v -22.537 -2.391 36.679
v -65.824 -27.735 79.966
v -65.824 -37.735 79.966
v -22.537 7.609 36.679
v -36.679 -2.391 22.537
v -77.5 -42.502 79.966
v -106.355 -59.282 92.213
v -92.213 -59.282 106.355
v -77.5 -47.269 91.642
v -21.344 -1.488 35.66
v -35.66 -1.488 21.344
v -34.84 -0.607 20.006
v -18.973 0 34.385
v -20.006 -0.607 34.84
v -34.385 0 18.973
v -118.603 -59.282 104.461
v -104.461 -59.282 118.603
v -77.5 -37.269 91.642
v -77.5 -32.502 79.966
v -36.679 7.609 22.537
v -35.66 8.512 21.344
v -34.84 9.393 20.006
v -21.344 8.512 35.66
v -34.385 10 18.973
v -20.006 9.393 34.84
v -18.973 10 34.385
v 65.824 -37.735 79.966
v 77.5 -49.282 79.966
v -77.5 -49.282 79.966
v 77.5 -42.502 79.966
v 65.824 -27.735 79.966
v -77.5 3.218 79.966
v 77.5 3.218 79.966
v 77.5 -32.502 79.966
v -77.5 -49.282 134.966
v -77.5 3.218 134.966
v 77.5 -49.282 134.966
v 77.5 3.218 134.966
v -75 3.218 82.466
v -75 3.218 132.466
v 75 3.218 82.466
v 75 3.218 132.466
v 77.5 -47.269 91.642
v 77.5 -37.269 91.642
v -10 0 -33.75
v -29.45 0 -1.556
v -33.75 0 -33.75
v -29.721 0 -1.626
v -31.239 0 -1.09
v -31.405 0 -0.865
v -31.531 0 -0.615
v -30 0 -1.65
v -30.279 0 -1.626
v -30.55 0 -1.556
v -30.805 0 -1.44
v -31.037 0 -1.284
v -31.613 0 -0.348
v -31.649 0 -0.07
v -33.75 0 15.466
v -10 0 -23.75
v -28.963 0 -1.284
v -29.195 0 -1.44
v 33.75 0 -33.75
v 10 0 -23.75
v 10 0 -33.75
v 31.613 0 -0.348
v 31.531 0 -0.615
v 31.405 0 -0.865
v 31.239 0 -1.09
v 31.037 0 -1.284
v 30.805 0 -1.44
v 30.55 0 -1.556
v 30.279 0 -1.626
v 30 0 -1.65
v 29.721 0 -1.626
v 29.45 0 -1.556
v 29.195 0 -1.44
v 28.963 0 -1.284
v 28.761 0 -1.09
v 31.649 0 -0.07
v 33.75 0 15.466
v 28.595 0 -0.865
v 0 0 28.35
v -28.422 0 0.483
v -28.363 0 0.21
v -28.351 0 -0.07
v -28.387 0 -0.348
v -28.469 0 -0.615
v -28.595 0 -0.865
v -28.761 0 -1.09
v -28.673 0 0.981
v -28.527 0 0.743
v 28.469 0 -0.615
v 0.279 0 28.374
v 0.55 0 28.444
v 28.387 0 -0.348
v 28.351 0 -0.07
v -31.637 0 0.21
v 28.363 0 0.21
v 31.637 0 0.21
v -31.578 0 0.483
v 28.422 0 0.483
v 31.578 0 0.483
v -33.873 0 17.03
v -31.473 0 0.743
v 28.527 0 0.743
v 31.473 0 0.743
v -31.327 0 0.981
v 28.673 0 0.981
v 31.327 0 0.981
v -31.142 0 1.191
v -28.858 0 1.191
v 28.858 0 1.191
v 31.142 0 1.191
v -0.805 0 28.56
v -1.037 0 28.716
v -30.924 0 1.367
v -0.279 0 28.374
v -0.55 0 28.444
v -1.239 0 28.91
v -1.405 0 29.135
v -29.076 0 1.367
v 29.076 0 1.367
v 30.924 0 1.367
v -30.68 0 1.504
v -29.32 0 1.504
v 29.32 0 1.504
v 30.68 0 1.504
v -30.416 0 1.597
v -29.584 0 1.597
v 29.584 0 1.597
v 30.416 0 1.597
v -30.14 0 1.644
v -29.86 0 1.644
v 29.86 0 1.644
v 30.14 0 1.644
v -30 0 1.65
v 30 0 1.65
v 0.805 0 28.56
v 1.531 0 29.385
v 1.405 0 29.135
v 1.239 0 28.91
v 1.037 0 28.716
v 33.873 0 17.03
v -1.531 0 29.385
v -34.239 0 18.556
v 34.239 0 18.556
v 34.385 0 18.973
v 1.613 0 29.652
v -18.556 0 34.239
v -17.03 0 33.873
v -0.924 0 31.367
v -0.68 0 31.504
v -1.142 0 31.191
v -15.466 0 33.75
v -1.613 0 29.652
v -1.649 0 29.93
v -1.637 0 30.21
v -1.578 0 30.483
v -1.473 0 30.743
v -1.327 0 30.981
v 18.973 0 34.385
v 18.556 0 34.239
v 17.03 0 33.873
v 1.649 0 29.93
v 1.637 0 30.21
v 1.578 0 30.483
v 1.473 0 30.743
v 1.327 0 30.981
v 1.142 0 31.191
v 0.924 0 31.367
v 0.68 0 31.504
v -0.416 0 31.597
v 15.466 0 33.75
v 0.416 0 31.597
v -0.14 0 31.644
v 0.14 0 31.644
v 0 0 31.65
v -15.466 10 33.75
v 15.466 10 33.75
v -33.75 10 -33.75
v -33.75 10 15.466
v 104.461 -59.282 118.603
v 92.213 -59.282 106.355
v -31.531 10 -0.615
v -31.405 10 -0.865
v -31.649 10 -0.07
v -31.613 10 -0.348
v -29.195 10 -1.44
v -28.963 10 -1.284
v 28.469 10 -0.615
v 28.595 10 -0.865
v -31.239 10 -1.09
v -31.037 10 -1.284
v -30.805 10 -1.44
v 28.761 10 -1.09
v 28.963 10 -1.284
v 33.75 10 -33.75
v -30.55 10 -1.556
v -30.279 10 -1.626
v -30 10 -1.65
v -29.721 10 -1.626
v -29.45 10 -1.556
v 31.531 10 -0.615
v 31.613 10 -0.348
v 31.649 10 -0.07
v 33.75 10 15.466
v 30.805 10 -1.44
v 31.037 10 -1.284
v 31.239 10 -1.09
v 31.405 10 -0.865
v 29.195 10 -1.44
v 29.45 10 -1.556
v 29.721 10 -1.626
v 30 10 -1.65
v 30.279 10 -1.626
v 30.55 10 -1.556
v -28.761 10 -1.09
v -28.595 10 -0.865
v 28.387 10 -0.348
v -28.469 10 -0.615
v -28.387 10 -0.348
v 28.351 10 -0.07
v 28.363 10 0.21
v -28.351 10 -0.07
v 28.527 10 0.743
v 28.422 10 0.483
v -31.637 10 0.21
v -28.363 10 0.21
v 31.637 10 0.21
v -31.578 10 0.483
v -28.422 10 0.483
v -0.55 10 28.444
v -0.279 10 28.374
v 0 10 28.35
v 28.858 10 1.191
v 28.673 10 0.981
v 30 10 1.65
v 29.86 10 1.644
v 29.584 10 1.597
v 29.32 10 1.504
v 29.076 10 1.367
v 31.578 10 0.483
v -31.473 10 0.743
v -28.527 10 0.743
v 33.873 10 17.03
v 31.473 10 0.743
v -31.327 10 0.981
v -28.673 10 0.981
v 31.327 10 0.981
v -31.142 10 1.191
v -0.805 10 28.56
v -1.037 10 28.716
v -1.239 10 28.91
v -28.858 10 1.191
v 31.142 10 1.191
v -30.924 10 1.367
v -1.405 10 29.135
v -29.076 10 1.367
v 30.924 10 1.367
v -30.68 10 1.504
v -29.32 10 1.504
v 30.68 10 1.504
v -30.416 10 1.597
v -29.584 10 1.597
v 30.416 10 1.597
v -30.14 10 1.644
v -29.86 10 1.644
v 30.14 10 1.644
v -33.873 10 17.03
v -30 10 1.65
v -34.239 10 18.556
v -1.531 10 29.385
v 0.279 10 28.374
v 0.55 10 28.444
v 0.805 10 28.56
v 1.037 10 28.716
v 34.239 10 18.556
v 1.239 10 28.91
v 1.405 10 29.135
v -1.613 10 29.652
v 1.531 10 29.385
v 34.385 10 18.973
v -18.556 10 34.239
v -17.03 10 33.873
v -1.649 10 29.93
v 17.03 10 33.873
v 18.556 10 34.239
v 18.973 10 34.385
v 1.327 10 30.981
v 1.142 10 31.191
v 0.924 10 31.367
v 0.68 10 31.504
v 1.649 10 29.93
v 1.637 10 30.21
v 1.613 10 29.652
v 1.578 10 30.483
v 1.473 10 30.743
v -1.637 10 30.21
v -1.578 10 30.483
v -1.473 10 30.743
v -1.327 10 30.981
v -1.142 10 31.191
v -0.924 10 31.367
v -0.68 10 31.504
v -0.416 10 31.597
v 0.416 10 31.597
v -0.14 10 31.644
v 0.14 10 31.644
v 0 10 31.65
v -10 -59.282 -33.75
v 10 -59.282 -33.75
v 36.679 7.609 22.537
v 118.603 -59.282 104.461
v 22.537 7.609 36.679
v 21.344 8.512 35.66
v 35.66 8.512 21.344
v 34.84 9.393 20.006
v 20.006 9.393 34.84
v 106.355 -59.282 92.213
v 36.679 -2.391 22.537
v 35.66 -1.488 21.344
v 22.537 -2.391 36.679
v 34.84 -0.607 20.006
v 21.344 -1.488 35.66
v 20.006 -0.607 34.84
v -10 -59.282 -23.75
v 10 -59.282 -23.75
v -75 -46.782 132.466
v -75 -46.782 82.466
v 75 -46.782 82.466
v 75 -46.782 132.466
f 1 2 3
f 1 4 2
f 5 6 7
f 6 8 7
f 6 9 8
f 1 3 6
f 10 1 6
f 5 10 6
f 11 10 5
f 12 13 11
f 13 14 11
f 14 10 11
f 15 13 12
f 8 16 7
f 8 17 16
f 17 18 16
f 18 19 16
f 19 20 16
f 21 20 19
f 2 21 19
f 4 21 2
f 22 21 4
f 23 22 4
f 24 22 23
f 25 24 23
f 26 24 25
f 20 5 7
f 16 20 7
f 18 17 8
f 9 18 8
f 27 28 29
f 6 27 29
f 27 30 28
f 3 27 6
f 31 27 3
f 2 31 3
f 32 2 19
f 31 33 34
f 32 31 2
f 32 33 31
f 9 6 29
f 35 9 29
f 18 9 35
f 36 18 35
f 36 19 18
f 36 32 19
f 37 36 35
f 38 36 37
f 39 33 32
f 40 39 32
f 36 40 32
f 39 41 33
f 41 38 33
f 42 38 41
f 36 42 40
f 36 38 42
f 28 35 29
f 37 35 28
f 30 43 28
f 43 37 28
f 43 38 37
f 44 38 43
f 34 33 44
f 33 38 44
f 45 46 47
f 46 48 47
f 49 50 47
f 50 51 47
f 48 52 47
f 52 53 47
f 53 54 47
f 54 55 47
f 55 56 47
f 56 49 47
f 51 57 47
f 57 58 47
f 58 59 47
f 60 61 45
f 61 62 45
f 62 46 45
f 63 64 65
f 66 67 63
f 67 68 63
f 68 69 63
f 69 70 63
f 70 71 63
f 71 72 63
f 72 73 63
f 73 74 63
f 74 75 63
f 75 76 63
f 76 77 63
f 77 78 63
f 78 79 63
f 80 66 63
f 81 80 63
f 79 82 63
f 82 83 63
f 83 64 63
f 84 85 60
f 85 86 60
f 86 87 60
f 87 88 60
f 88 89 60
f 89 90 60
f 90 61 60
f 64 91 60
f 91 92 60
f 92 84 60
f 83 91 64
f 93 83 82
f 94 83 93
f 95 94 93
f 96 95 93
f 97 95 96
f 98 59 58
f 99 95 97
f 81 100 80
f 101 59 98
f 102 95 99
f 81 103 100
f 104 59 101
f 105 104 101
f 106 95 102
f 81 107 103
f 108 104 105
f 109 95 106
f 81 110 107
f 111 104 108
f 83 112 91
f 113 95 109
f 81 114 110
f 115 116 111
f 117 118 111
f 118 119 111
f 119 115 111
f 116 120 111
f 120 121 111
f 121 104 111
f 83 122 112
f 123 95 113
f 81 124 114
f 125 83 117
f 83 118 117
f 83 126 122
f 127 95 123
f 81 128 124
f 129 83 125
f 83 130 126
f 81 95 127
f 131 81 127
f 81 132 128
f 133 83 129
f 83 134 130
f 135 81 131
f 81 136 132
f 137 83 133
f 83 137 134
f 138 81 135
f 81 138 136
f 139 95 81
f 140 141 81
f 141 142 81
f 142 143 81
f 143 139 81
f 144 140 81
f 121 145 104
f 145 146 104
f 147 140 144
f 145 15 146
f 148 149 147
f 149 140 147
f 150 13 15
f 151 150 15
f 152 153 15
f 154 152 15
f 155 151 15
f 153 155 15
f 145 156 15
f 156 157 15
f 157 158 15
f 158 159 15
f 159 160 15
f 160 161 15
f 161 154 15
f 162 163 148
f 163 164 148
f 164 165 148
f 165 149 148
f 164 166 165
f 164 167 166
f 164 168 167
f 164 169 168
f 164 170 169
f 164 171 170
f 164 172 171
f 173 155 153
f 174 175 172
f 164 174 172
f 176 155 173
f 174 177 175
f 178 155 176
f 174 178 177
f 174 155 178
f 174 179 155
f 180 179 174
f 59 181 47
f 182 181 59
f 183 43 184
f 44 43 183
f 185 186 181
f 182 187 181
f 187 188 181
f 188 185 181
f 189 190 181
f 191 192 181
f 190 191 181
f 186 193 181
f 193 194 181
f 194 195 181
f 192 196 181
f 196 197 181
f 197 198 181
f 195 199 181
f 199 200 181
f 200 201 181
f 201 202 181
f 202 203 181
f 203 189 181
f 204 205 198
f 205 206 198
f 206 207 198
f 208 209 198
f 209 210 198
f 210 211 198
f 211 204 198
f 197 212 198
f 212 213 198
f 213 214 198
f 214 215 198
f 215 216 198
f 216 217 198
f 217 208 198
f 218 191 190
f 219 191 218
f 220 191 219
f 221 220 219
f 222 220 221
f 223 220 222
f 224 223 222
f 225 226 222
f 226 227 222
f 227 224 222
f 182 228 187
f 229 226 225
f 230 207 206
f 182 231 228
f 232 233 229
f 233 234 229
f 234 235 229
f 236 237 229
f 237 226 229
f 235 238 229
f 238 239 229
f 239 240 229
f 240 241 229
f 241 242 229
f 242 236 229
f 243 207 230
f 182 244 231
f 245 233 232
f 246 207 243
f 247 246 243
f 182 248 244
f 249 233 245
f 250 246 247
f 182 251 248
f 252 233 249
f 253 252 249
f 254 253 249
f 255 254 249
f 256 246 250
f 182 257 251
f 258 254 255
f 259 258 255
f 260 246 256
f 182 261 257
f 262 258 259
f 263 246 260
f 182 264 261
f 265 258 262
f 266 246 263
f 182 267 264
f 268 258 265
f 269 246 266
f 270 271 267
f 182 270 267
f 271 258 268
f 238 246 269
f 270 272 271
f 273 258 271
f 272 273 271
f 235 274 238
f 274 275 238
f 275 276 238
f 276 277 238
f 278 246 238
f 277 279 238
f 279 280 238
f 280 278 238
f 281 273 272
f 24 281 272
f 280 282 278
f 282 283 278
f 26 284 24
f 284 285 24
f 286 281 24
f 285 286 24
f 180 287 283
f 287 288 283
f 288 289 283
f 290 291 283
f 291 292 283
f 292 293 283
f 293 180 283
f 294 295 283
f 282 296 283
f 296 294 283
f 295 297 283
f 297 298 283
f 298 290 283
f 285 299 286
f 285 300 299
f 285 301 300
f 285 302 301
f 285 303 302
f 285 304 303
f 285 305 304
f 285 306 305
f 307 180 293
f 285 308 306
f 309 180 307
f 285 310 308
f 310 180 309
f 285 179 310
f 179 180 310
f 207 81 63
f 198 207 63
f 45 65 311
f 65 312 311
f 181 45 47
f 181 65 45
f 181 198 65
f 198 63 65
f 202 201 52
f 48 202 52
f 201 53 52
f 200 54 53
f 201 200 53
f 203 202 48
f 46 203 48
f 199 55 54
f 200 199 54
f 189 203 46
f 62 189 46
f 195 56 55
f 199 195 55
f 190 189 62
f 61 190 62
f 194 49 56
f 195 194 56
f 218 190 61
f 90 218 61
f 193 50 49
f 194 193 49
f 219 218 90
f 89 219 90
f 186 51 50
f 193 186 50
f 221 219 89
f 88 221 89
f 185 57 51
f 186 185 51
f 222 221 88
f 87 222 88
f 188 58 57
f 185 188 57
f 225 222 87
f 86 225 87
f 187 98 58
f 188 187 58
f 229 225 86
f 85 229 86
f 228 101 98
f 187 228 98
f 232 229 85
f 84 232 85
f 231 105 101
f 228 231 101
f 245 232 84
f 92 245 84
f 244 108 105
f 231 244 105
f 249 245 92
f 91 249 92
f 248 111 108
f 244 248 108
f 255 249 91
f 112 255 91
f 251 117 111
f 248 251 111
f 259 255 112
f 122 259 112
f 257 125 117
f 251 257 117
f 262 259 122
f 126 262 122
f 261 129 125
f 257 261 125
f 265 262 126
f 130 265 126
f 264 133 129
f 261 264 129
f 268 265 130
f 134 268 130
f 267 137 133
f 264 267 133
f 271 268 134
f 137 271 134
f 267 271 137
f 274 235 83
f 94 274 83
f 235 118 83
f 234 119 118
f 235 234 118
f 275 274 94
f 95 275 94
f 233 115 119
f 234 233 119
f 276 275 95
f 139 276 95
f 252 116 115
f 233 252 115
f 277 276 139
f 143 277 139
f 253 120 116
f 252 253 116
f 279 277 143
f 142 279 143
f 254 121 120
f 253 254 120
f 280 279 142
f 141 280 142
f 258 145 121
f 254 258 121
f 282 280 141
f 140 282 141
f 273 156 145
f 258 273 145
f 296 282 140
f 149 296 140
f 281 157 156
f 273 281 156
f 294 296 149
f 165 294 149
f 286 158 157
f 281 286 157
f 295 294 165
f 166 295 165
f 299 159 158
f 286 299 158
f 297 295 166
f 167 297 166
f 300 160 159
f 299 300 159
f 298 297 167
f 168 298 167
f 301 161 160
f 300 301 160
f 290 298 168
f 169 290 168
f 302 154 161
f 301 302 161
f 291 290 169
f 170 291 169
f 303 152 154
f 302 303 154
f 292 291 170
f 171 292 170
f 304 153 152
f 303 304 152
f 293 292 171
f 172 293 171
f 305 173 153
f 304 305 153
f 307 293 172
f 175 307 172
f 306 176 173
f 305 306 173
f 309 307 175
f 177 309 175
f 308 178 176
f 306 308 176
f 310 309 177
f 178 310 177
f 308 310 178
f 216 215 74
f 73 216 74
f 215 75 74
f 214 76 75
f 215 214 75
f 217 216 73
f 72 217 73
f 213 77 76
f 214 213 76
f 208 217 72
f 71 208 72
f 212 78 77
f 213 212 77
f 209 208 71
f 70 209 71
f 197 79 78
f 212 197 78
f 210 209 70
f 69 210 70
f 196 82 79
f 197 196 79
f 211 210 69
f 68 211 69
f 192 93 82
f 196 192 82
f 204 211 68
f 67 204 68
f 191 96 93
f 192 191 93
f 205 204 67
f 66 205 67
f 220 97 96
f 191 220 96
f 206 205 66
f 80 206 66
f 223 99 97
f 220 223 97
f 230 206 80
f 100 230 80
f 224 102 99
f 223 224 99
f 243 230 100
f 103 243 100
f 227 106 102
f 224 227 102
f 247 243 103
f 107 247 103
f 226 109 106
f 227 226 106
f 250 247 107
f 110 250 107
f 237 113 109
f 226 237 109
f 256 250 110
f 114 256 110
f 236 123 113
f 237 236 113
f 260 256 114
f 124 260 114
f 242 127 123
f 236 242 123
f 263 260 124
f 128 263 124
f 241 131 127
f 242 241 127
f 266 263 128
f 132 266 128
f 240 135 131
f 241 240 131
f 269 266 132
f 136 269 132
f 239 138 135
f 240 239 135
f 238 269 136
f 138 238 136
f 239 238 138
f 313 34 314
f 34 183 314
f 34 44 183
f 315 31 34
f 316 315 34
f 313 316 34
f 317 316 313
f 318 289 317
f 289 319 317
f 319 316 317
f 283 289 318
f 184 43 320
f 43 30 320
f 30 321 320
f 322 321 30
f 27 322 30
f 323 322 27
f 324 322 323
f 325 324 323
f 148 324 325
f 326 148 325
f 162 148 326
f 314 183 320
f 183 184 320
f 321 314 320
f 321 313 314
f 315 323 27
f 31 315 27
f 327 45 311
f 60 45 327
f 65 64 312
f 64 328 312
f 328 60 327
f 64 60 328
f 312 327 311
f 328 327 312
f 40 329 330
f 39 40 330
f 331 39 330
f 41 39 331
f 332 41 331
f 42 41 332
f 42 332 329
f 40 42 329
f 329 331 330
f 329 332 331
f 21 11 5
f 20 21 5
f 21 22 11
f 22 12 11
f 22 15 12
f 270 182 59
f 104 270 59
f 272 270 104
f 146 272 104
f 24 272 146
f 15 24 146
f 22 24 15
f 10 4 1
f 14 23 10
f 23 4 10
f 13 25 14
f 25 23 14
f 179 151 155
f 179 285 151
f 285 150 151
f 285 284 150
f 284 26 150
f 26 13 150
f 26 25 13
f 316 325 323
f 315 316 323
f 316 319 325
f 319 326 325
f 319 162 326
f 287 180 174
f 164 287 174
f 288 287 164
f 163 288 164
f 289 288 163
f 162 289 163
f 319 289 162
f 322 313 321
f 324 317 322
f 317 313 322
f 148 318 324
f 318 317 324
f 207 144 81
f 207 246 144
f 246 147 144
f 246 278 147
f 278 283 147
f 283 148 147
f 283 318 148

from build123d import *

# Parameters (mm, degrees)
SKETCH2_W                = 67.5
SKETCH2_H                = 67.5
SKETCH2_R                = 1.65
BOSS_EXTRUDE3_DEPTH      = 10
BOSS_EXTRUDE6_DEPTH      = 10
CUT_EXTRUDE2_DEPTH       = 10
CUT_EXTRUDE3_DEPTH       = 10
SKETCH13_W               = 20
SKETCH13_H               = 10
BOSS_EXTRUDE8_DEPTH      = 59.282032303
BOSS_EXTRUDE9_DEPTH      = 77.5
BOSS_EXTRUDE9_DEPTH_BACK = 77.5
SKETCH14_W               = 55
SKETCH14_H               = 52.5
SKETCH15_W               = 150
SKETCH15_H               = 50
CUT_EXTRUDE4_DEPTH       = 50
FILLET1_R                = 10


with BuildPart() as part:
    # Sketch2 → Boss-Extrude3 (new body)
    with BuildSketch(Plane(origin=(0, 0, 0), x_dir=(1, 0, 0), z_dir=(0, 1, 0))):
        Rectangle(SKETCH2_W, SKETCH2_H)
        with Locations(Location((-30, 0, 0), (0, 0, 270))):
            Circle(SKETCH2_R, mode=Mode.SUBTRACT)
        with Locations(Location((30, 0, 0), (0, 0, 270))):
            Circle(SKETCH2_R, mode=Mode.SUBTRACT)
        with Locations(Location((0, -30, 0), (0, 0, 270))):
            Circle(SKETCH2_R, mode=Mode.SUBTRACT)
    extrude(amount=BOSS_EXTRUDE3_DEPTH)


with BuildPart() as body_2:
    # Sketch5 → Boss-Extrude6 (new, symmetric)
    with BuildSketch(Plane(origin=(0, 0, 0), x_dir=(0.7071067811865476, 0, -0.7071067811865476), z_dir=(0.7071067811865476, 0, 0.7071067811865476))):
        Polygon((-37.72970773, 10), (-157.72970773, -59.282032303), (-140.409199654, -59.282032303), (-37.72970773, 0), align=None)
    boss_extrude6 = extrude(amount=BOSS_EXTRUDE6_DEPTH, both=True)


with BuildPart() as part_1:
    add(part.part)

    # Mirror3: Boss-Extrude6 across plane
    add(boss_extrude6.mirror(Plane(origin=(0, 0, 0), x_dir=(0, 0, 1), z_dir=(1, 0, 0))))

    # Sketch11 → Cut-Extrude2 (cut)
    with BuildSketch(Plane(origin=(9.731595226, 23.837442686, 9.731595226), x_dir=(0.9259415151999266, -0.2703581015304675, -0.2637021186227093), z_dir=(0.35355339059327223, 0.8660254037844399, 0.3535533905932725))):
        Polygon((6.552208132, -28.687416212), (23.376309745, -17.873092151), (23.376309745, -36.367082054), align=None)
    extrude(amount=CUT_EXTRUDE2_DEPTH, mode=Mode.SUBTRACT)

    # Sketch12 → Cut-Extrude3 (cut)
    with BuildSketch(Plane(origin=(-9.731595226, 23.837442686, 9.731595226), x_dir=(0.9259415151999266, 0.2703581015304675, 0.2637021186227093), z_dir=(-0.35355339059327223, 0.8660254037844399, 0.3535533905932725))):
        Polygon((-98.300144639, -134.433887296), (-81.476043026, -145.248211357), (-6.552208132, -28.687416212), (-23.376309745, -17.873092151), align=None)
    extrude(amount=CUT_EXTRUDE3_DEPTH, mode=Mode.SUBTRACT)

    # Sketch13 → Boss-Extrude8 (add)
    with BuildSketch(Plane.XZ):
        with Locations((0, -28.75)):
            Rectangle(SKETCH13_W, SKETCH13_H)
    extrude(amount=BOSS_EXTRUDE8_DEPTH)

    add(body_2.part)  # Boss-Extrude9 merges body 2
    # Sketch14 → Boss-Extrude9 (add, two sides: drawn at the far end of the back side and taken through both)
    with BuildSketch(Plane(origin=(0, 0, 0), x_dir=(0, 0, -1), z_dir=(1, 0, 0)).offset(-BOSS_EXTRUDE9_DEPTH_BACK)):
        with Locations((-107.465780691, -23.032032303)):
            Rectangle(SKETCH14_W, SKETCH14_H)
    extrude(amount=BOSS_EXTRUDE9_DEPTH + BOSS_EXTRUDE9_DEPTH_BACK)

    # Sketch15 → Cut-Extrude4 (cut)
    with BuildSketch(Plane(origin=(0, 3.217967697, 0), x_dir=(1, 0, 0), z_dir=(0, 1, 0))):
        with Locations((0, -107.465780691)):
            Rectangle(SKETCH15_W, SKETCH15_H)
    extrude(amount=-CUT_EXTRUDE4_DEPTH, mode=Mode.SUBTRACT)

    # Fillet1
    # the kernel refuses this fillet: 10 mm, written as the material it adds along each edge
    with BuildSketch(Plane(origin=(-19.607864376, 0, 33.75), x_dir=(-0.7071067811865471, 0, 0.7071067811865479), z_dir=(0, 1, 0))) as fillet1_piece_1_section:
        with BuildLine():
            CenterArc((FILLET1_R * 0.414213562373, FILLET1_R), FILLET1_R, 225, 45)
            Line((-FILLET1_R * 0.292893218813, FILLET1_R * 0.292893218813), (0, 0))
            Line((0, 0), (FILLET1_R * 0.414213562373, 0))
        make_face()
    fillet1_piece_1 = extrude(amount=10, mode=Mode.PRIVATE)
    fillet1_piece_1 = split(fillet1_piece_1, bisect_by=Plane(origin=(-17.351540007, 0.866448536, 33.883967569), z_dir=(0.3535533905932724, -0.8660254037844399, -0.3535533905932724)), keep=Keep.TOP, mode=Mode.PRIVATE)
    add(fillet1_piece_1)
    with BuildSketch(Plane(origin=(-19.607864376, -10.355339059, 33.75), x_dir=(-0.7071067811865475, 0, 0.7071067811865475), z_dir=(0, 1, 0))) as fillet1_piece_2_section:
        with BuildLine():
            CenterArc((FILLET1_R * 0.414213562373, FILLET1_R), FILLET1_R, 225, 45)
            Line((-FILLET1_R * 0.292893218813, FILLET1_R * 0.292893218813), (0, 0))
            Line((0, 0), (FILLET1_R * 0.414213562373, 0))
        make_face()
    fillet1_piece_2 = extrude(amount=20.355339059, mode=Mode.PRIVATE)
    fillet1_piece_2 = split(fillet1_piece_2, bisect_by=Plane(origin=(-21.014554375, -1.158148748, 35.180183481), z_dir=(-0.3535533905932724, 0.8660254037844399, 0.3535533905932724)), keep=Keep.TOP, mode=Mode.PRIVATE)
    fillet1_piece_2 = split(fillet1_piece_2, bisect_by=Plane(origin=(-21.217188194, 0, 35.382817301), z_dir=(0, -1, 0)), keep=Keep.TOP, mode=Mode.PRIVATE)
    add(fillet1_piece_2)
    with BuildSketch(Plane(origin=(-19.607864376, 0, 33.75), x_dir=(-0.7071067811865471, 0, 0.7071067811865479), z_dir=(0, 1, 0))) as fillet1_piece_3_section:
        with BuildLine():
            CenterArc((FILLET1_R * 0.414213562373, FILLET1_R), FILLET1_R, 225, 45)
            Line((-FILLET1_R * 0.292893218813, FILLET1_R * 0.292893218813), (0, 0))
            Line((0, 0), (FILLET1_R * 0.414213562373, 0))
        make_face()
    fillet1_piece_3 = extrude(amount=10, mode=Mode.PRIVATE)
    fillet1_piece_3 = split(fillet1_piece_3, bisect_by=Plane(origin=(-20.84268256, 8.638165162, 35.850982283), z_dir=(0.3535533905932724, -0.8660254037844399, -0.3535533905932724)), keep=Keep.TOP, mode=Mode.PRIVATE)
    fillet1_piece_3 = split(fillet1_piece_3, bisect_by=Plane(origin=(-17.780820381, 1.138165162, 32.789120105), z_dir=(-0.3535533905932724, 0.8660254037844399, 0.3535533905932724)), keep=Keep.TOP, mode=Mode.PRIVATE)
    add(fillet1_piece_3)
    with BuildSketch(Plane(origin=(33.75, -10.355339059, 19.607864376), x_dir=(0, 0, -1), z_dir=(0, 1, 0))) as fillet1_piece_4_section:
        with BuildLine():
            CenterArc((FILLET1_R * 0.414213562373, -FILLET1_R), FILLET1_R, 90, 45)
            Line((-FILLET1_R * 0.292893218813, -FILLET1_R * 0.292893218813), (0, 0))
            Line((0, 0), (FILLET1_R * 0.414213562373, 0))
        make_face()
    fillet1_piece_4 = extrude(amount=20.355339059, mode=Mode.PRIVATE)
    fillet1_piece_4 = split(fillet1_piece_4, bisect_by=Plane(origin=(35.382817302, 0, 21.217188197), z_dir=(0, -1, 0)), keep=Keep.TOP, mode=Mode.PRIVATE)
    fillet1_piece_4 = split(fillet1_piece_4, bisect_by=Plane(origin=(35.180183482, -1.15814875, 21.014554377), z_dir=(0.35355339059327234, 0.8660254037844399, 0.35355339059327234)), keep=Keep.TOP, mode=Mode.PRIVATE)
    add(fillet1_piece_4)
    with BuildSketch(Plane(origin=(33.75, 0, 19.607864376), x_dir=(0, 0, -1), z_dir=(0, 1, 0))) as fillet1_piece_5_section:
        with BuildLine():
            CenterArc((FILLET1_R * 0.414213562373, -FILLET1_R), FILLET1_R, 90, 45)
            Line((-FILLET1_R * 0.292893218813, -FILLET1_R * 0.292893218813), (0, 0))
            Line((0, 0), (FILLET1_R * 0.414213562373, 0))
        make_face()
    fillet1_piece_5 = extrude(amount=10, mode=Mode.PRIVATE)
    fillet1_piece_5 = split(fillet1_piece_5, bisect_by=Plane(origin=(33.883967571, 0.866448534, 17.351540009), z_dir=(-0.35355339059327234, -0.8660254037844399, -0.35355339059327234)), keep=Keep.TOP, mode=Mode.PRIVATE)
    add(fillet1_piece_5)
    with BuildSketch(Plane(origin=(33.75, 0, 19.607864376), x_dir=(0, 0, -1), z_dir=(0, 1, 0))) as fillet1_piece_6_section:
        with BuildLine():
            CenterArc((FILLET1_R * 0.414213562373, -FILLET1_R), FILLET1_R, 90, 45)
            Line((-FILLET1_R * 0.292893218813, -FILLET1_R * 0.292893218813), (0, 0))
            Line((0, 0), (FILLET1_R * 0.414213562373, 0))
        make_face()
    fillet1_piece_6 = extrude(amount=10, mode=Mode.PRIVATE)
    fillet1_piece_6 = split(fillet1_piece_6, bisect_by=Plane(origin=(35.850982284, 8.638165162, 20.842682559), z_dir=(-0.3535533905932724, -0.8660254037844399, -0.3535533905932724)), keep=Keep.TOP, mode=Mode.PRIVATE)
    fillet1_piece_6 = split(fillet1_piece_6, bisect_by=Plane(origin=(32.789120106, 1.138165162, 17.780820381), z_dir=(0.35355339059327234, 0.8660254037844399, 0.35355339059327234)), keep=Keep.TOP, mode=Mode.PRIVATE)
    add(fillet1_piece_6)
    with BuildSketch(Plane(origin=(-33.75, 0, 19.607864376), x_dir=(-0.7071067811865479, 0, 0.7071067811865471), z_dir=(0, 1, 0))) as fillet1_piece_7_section:
        with BuildLine():
            CenterArc((FILLET1_R * 0.414213562373, -FILLET1_R), FILLET1_R, 90, 45)
            Line((-FILLET1_R * 0.292893218813, -FILLET1_R * 0.292893218813), (0, 0))
            Line((0, 0), (FILLET1_R * 0.414213562373, 0))
        make_face()
    fillet1_piece_7 = extrude(amount=10, mode=Mode.PRIVATE)
    fillet1_piece_7 = split(fillet1_piece_7, bisect_by=Plane(origin=(-33.883967569, 0.866448536, 17.351540007), z_dir=(0.3535533905932724, -0.8660254037844399, -0.3535533905932724)), keep=Keep.TOP, mode=Mode.PRIVATE)
    add(fillet1_piece_7)
    with BuildSketch(Plane(origin=(-33.75, -10.355339059, 19.607864376), x_dir=(-0.7071067811865475, 0, 0.7071067811865475), z_dir=(0, 1, 0))) as fillet1_piece_8_section:
        with BuildLine():
            CenterArc((FILLET1_R * 0.414213562373, -FILLET1_R), FILLET1_R, 90, 45)
            Line((-FILLET1_R * 0.292893218813, -FILLET1_R * 0.292893218813), (0, 0))
            Line((0, 0), (FILLET1_R * 0.414213562373, 0))
        make_face()
    fillet1_piece_8 = extrude(amount=20.355339059, mode=Mode.PRIVATE)
    fillet1_piece_8 = split(fillet1_piece_8, bisect_by=Plane(origin=(-35.180183481, -1.158148748, 21.014554375), z_dir=(-0.3535533905932724, 0.8660254037844399, 0.3535533905932724)), keep=Keep.TOP, mode=Mode.PRIVATE)
    fillet1_piece_8 = split(fillet1_piece_8, bisect_by=Plane(origin=(-35.382817301, 0, 21.217188194), z_dir=(0, -1, 0)), keep=Keep.TOP, mode=Mode.PRIVATE)
    add(fillet1_piece_8)
    with BuildSketch(Plane(origin=(-33.75, 0, 19.607864376), x_dir=(-0.7071067811865479, 0, 0.7071067811865471), z_dir=(0, 1, 0))) as fillet1_piece_9_section:
        with BuildLine():
            CenterArc((FILLET1_R * 0.414213562373, -FILLET1_R), FILLET1_R, 90, 45)
            Line((-FILLET1_R * 0.292893218813, -FILLET1_R * 0.292893218813), (0, 0))
            Line((0, 0), (FILLET1_R * 0.414213562373, 0))
        make_face()
    fillet1_piece_9 = extrude(amount=10, mode=Mode.PRIVATE)
    fillet1_piece_9 = split(fillet1_piece_9, bisect_by=Plane(origin=(-35.850982283, 8.638165162, 20.84268256), z_dir=(0.3535533905932724, -0.8660254037844399, -0.3535533905932724)), keep=Keep.TOP, mode=Mode.PRIVATE)
    fillet1_piece_9 = split(fillet1_piece_9, bisect_by=Plane(origin=(-32.789120105, 1.138165162, 17.780820381), z_dir=(-0.3535533905932724, 0.8660254037844399, 0.3535533905932724)), keep=Keep.TOP, mode=Mode.PRIVATE)
    add(fillet1_piece_9)
    with BuildSketch(Plane(origin=(19.607864376, -10.355339059, 33.75), x_dir=(-1, 0, 0), z_dir=(0, 1, 0))) as fillet1_piece_10_section:
        with BuildLine():
            CenterArc((FILLET1_R * 0.414213562373, FILLET1_R), FILLET1_R, 225, 45)
            Line((-FILLET1_R * 0.292893218813, FILLET1_R * 0.292893218813), (0, 0))
            Line((0, 0), (FILLET1_R * 0.414213562373, 0))
        make_face()
    fillet1_piece_10 = extrude(amount=20.355339059, mode=Mode.PRIVATE)
    fillet1_piece_10 = split(fillet1_piece_10, bisect_by=Plane(origin=(21.217188197, 0, 35.382817302), z_dir=(0, -1, 0)), keep=Keep.TOP, mode=Mode.PRIVATE)
    fillet1_piece_10 = split(fillet1_piece_10, bisect_by=Plane(origin=(21.014554377, -1.15814875, 35.180183482), z_dir=(0.35355339059327234, 0.8660254037844399, 0.35355339059327234)), keep=Keep.TOP, mode=Mode.PRIVATE)
    add(fillet1_piece_10)
    with BuildSketch(Plane(origin=(19.607864376, 0, 33.75), x_dir=(-1, 0, 0), z_dir=(0, 1, 0))) as fillet1_piece_11_section:
        with BuildLine():
            CenterArc((FILLET1_R * 0.414213562373, FILLET1_R), FILLET1_R, 225, 45)
            Line((-FILLET1_R * 0.292893218813, FILLET1_R * 0.292893218813), (0, 0))
            Line((0, 0), (FILLET1_R * 0.414213562373, 0))
        make_face()
    fillet1_piece_11 = extrude(amount=10, mode=Mode.PRIVATE)
    fillet1_piece_11 = split(fillet1_piece_11, bisect_by=Plane(origin=(17.351540009, 0.866448534, 33.883967571), z_dir=(-0.35355339059327234, -0.8660254037844399, -0.35355339059327234)), keep=Keep.TOP, mode=Mode.PRIVATE)
    add(fillet1_piece_11)
    with BuildSketch(Plane(origin=(19.607864376, 0, 33.75), x_dir=(-1, 0, 0), z_dir=(0, 1, 0))) as fillet1_piece_12_section:
        with BuildLine():
            CenterArc((FILLET1_R * 0.414213562373, FILLET1_R), FILLET1_R, 225, 45)
            Line((-FILLET1_R * 0.292893218813, FILLET1_R * 0.292893218813), (0, 0))
            Line((0, 0), (FILLET1_R * 0.414213562373, 0))
        make_face()
    fillet1_piece_12 = extrude(amount=10, mode=Mode.PRIVATE)
    fillet1_piece_12 = split(fillet1_piece_12, bisect_by=Plane(origin=(20.842682559, 8.638165162, 35.850982284), z_dir=(-0.3535533905932724, -0.8660254037844399, -0.3535533905932724)), keep=Keep.TOP, mode=Mode.PRIVATE)
    fillet1_piece_12 = split(fillet1_piece_12, bisect_by=Plane(origin=(17.780820381, 1.138165162, 32.789120106), z_dir=(0.35355339059327234, 0.8660254037844399, 0.35355339059327234)), keep=Keep.TOP, mode=Mode.PRIVATE)
    add(fillet1_piece_12)


solid = part_1.part
